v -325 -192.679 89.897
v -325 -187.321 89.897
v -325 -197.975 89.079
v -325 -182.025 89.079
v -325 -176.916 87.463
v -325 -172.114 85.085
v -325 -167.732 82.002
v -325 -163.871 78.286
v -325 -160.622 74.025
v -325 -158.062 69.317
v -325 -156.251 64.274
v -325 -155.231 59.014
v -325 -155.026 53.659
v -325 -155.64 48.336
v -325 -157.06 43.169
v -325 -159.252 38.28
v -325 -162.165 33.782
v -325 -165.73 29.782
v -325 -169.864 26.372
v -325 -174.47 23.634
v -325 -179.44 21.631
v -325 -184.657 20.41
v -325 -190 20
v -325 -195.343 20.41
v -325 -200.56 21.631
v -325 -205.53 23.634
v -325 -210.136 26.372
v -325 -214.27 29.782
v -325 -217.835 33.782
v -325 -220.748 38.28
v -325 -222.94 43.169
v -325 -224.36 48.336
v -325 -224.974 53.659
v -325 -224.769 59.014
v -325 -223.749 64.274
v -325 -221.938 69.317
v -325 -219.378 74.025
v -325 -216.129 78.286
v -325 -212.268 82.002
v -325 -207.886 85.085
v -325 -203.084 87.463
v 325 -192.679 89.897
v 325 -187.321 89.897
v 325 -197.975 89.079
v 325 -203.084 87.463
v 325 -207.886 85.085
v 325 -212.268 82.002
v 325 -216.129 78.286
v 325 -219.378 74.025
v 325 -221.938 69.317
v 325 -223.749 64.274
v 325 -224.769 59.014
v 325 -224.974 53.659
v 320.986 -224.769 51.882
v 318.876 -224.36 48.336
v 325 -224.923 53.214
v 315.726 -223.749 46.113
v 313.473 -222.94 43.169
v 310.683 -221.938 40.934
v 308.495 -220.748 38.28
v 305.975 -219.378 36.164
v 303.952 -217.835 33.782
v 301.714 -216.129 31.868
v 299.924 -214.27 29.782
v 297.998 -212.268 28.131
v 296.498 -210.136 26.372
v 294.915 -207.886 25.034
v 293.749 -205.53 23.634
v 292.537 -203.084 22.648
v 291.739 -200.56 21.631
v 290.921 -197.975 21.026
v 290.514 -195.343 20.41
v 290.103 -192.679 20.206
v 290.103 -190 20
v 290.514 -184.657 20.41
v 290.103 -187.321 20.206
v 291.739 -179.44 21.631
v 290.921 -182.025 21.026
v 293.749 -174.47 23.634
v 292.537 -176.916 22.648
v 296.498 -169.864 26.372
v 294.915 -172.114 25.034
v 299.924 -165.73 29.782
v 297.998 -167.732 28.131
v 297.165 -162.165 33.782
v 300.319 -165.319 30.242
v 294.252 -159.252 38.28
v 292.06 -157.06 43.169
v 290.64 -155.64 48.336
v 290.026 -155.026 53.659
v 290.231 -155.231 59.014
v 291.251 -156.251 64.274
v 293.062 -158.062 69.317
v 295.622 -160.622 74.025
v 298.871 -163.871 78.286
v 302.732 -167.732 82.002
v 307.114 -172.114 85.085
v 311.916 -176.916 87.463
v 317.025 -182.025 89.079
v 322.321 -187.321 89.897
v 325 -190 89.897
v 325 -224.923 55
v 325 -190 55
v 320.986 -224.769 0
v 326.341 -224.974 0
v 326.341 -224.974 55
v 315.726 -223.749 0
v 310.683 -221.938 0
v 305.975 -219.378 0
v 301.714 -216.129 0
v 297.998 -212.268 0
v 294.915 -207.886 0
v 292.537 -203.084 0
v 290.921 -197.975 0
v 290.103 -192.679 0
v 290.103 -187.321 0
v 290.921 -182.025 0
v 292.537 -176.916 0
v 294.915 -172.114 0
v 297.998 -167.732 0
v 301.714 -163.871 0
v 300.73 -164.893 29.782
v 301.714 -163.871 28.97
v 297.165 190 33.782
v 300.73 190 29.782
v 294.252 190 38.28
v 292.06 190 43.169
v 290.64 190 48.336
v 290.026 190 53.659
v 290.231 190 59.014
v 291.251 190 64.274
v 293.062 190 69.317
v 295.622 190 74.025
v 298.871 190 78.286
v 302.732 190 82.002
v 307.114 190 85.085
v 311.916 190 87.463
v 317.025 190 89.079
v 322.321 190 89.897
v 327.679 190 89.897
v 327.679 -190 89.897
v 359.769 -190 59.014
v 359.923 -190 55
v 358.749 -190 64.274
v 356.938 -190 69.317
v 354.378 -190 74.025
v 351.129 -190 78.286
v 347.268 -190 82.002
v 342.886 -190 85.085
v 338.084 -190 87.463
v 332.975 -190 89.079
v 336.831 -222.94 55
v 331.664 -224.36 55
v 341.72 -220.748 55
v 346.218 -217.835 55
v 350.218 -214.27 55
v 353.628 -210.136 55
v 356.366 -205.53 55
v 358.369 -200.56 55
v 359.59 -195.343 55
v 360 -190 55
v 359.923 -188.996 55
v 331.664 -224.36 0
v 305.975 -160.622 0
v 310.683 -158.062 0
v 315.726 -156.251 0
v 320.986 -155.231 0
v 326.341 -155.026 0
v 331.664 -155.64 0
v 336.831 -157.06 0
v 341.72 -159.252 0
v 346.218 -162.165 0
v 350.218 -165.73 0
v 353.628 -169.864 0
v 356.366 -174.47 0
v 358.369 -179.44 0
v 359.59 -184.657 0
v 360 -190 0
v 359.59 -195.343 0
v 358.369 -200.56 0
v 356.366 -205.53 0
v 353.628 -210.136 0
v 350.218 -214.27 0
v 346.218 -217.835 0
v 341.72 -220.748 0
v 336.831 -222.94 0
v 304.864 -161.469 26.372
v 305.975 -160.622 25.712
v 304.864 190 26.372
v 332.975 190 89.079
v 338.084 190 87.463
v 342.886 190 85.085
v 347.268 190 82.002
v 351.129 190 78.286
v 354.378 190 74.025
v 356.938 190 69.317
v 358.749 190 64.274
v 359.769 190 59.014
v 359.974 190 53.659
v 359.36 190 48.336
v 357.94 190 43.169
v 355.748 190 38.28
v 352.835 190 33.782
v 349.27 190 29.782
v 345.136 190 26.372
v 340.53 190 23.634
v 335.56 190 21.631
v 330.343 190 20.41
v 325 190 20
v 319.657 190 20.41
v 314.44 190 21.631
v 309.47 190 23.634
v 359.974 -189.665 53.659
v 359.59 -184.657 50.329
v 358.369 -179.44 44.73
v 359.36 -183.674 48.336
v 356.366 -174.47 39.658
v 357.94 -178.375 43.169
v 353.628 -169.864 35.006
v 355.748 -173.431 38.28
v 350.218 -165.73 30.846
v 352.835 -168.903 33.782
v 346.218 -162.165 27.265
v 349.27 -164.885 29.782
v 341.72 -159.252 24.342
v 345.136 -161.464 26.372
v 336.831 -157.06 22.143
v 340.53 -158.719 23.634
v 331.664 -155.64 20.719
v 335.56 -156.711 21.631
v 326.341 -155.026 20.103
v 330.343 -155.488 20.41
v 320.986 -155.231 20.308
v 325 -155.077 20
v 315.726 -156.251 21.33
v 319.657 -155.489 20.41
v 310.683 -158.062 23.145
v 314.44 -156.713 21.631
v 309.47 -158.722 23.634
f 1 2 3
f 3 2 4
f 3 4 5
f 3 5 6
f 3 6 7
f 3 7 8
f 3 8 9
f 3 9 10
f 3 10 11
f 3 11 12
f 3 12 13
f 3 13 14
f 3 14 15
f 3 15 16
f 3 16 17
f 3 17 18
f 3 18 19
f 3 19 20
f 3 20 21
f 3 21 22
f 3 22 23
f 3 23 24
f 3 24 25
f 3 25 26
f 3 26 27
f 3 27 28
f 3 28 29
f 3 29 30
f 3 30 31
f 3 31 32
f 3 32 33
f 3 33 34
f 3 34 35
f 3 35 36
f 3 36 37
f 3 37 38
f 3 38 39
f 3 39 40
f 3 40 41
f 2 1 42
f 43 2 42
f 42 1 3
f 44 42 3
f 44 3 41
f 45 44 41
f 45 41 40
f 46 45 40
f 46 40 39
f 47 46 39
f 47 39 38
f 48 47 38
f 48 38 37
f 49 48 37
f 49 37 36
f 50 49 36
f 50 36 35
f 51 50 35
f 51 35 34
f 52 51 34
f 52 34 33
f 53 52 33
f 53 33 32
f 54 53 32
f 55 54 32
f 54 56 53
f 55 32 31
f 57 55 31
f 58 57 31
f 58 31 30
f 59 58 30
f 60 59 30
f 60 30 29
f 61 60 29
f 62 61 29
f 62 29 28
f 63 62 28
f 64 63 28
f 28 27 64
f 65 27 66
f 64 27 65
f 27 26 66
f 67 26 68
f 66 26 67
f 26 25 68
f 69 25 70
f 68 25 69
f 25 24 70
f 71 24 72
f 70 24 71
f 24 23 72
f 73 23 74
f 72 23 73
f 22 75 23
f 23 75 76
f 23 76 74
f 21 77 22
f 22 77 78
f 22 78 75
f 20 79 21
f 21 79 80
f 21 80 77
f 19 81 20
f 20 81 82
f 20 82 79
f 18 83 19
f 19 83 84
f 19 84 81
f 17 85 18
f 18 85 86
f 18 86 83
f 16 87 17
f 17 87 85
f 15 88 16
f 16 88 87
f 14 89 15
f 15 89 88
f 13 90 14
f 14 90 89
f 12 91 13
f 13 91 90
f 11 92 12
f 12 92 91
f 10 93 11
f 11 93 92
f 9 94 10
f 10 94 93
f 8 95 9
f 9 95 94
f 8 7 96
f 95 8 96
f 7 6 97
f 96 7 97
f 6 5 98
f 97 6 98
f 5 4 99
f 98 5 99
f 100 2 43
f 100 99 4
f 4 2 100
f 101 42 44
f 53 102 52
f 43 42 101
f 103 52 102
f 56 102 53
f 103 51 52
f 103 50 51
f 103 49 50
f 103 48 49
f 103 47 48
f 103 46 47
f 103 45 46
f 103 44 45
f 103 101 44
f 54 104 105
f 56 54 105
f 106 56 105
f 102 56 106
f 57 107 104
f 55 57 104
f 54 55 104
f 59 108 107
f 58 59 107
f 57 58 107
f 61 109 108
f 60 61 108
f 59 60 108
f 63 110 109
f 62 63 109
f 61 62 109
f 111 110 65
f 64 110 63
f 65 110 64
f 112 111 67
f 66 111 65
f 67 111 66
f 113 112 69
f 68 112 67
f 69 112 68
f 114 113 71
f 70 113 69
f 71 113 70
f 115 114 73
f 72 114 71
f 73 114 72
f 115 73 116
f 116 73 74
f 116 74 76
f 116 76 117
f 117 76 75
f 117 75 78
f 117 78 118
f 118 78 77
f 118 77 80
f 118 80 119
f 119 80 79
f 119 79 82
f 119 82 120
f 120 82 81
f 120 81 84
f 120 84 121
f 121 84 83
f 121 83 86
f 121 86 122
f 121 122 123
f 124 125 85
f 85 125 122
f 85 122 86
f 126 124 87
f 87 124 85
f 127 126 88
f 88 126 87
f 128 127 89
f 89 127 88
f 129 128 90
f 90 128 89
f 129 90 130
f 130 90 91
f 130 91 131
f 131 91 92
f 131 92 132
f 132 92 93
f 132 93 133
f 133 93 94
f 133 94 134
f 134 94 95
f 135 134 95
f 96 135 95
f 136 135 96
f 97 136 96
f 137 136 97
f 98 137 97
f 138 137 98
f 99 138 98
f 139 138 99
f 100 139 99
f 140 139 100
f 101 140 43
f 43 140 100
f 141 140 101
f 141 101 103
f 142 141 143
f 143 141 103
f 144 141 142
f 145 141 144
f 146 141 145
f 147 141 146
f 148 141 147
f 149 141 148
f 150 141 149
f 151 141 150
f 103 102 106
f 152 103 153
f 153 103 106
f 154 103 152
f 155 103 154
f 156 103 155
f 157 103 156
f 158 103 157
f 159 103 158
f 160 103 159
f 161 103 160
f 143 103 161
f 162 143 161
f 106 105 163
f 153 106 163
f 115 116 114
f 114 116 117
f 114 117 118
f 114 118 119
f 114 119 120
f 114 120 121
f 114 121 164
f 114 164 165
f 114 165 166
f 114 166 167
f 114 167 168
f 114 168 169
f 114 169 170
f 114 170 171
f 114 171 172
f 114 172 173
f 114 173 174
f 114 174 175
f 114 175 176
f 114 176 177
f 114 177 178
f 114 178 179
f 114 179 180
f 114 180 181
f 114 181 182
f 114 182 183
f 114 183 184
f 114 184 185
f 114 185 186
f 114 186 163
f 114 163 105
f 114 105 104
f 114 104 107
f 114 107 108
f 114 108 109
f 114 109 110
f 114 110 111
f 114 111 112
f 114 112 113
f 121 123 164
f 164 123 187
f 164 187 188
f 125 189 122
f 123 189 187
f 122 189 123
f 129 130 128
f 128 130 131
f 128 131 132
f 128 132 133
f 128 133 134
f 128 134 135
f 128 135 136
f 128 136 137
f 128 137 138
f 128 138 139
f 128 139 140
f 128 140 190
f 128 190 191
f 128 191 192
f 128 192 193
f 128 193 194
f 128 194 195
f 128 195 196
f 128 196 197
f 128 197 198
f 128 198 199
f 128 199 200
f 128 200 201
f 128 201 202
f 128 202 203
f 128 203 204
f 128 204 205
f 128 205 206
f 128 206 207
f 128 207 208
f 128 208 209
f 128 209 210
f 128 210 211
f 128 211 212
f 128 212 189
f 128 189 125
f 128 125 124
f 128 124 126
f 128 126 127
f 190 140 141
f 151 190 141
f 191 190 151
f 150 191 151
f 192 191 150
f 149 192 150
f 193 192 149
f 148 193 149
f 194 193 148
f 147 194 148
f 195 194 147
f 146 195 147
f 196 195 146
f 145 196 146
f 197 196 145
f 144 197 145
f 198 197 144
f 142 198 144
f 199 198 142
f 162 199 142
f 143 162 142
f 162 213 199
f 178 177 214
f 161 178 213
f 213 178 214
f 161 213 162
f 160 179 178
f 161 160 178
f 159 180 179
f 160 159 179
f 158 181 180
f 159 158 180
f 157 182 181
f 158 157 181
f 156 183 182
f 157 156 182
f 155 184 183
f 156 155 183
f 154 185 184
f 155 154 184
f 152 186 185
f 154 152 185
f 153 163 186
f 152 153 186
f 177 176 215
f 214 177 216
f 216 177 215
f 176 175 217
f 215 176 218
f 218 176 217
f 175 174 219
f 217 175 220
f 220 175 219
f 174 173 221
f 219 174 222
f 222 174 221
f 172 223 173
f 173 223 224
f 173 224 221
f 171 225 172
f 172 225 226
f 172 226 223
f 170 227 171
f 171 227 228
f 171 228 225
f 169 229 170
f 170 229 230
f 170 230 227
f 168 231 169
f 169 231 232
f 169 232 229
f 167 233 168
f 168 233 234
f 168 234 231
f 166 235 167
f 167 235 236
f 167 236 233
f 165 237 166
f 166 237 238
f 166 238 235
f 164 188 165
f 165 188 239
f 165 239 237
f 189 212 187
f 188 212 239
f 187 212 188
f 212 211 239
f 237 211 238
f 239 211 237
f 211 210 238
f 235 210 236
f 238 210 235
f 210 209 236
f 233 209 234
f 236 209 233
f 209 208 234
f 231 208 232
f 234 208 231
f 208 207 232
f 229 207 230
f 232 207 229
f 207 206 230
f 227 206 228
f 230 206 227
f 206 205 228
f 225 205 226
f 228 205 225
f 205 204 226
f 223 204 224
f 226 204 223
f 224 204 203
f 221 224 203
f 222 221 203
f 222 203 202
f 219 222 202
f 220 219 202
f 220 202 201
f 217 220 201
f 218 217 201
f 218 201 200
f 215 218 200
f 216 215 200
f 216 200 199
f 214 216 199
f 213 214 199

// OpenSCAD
fn_setting = 41; // does not work
//fn_setting = 40; // works

// basic box sizes
box_width = 720;
box_depth = 450;
box_height = 90;
box_bevel = 35;

union ()
{
	translate ([(box_width / 2) - box_bevel, -((box_depth / 2) - box_bevel), 0])
	cylinder (h = box_height- box_bevel, r = box_bevel, center = false, $fn = fn_setting);

	translate ([0, -((box_depth / 2) - box_bevel), box_height- box_bevel])
	rotate ([0, 90, 0])
	cylinder (h = box_width - (2 * box_bevel), r = box_bevel, center = true, $fn = fn_setting);

	translate ([(box_width / 2) - box_bevel, 0, box_height- box_bevel])
	rotate ([90, 90, 0])
	cylinder (h = box_depth - (2 * box_bevel), r = box_bevel, center = true, $fn = fn_setting);
}


/*
Reported by Ian Shumsky:

1) Export STL from fn_bug.scad
   - fn_setting = 41 -> triggers bug
      - fn_setting = 40 -> works

      2) Open fn_bug_import.scad and render using CGAL (F6)

      ->
      CGAL error in CGA_Nef_polyhedron3(): CGAL ERROR: assertion violation!
      Expr: pe_prev->is_border() || !internal::Plane_constructor<Plane>::get_plane(pe_prev->facet(),pe_prev->facet()->plane()).is_degenerate()
      File: ../libraries/install/include/CGAL/Nef_3/polyhedron_3_to_nef_3.h
      Line: 252
*/
